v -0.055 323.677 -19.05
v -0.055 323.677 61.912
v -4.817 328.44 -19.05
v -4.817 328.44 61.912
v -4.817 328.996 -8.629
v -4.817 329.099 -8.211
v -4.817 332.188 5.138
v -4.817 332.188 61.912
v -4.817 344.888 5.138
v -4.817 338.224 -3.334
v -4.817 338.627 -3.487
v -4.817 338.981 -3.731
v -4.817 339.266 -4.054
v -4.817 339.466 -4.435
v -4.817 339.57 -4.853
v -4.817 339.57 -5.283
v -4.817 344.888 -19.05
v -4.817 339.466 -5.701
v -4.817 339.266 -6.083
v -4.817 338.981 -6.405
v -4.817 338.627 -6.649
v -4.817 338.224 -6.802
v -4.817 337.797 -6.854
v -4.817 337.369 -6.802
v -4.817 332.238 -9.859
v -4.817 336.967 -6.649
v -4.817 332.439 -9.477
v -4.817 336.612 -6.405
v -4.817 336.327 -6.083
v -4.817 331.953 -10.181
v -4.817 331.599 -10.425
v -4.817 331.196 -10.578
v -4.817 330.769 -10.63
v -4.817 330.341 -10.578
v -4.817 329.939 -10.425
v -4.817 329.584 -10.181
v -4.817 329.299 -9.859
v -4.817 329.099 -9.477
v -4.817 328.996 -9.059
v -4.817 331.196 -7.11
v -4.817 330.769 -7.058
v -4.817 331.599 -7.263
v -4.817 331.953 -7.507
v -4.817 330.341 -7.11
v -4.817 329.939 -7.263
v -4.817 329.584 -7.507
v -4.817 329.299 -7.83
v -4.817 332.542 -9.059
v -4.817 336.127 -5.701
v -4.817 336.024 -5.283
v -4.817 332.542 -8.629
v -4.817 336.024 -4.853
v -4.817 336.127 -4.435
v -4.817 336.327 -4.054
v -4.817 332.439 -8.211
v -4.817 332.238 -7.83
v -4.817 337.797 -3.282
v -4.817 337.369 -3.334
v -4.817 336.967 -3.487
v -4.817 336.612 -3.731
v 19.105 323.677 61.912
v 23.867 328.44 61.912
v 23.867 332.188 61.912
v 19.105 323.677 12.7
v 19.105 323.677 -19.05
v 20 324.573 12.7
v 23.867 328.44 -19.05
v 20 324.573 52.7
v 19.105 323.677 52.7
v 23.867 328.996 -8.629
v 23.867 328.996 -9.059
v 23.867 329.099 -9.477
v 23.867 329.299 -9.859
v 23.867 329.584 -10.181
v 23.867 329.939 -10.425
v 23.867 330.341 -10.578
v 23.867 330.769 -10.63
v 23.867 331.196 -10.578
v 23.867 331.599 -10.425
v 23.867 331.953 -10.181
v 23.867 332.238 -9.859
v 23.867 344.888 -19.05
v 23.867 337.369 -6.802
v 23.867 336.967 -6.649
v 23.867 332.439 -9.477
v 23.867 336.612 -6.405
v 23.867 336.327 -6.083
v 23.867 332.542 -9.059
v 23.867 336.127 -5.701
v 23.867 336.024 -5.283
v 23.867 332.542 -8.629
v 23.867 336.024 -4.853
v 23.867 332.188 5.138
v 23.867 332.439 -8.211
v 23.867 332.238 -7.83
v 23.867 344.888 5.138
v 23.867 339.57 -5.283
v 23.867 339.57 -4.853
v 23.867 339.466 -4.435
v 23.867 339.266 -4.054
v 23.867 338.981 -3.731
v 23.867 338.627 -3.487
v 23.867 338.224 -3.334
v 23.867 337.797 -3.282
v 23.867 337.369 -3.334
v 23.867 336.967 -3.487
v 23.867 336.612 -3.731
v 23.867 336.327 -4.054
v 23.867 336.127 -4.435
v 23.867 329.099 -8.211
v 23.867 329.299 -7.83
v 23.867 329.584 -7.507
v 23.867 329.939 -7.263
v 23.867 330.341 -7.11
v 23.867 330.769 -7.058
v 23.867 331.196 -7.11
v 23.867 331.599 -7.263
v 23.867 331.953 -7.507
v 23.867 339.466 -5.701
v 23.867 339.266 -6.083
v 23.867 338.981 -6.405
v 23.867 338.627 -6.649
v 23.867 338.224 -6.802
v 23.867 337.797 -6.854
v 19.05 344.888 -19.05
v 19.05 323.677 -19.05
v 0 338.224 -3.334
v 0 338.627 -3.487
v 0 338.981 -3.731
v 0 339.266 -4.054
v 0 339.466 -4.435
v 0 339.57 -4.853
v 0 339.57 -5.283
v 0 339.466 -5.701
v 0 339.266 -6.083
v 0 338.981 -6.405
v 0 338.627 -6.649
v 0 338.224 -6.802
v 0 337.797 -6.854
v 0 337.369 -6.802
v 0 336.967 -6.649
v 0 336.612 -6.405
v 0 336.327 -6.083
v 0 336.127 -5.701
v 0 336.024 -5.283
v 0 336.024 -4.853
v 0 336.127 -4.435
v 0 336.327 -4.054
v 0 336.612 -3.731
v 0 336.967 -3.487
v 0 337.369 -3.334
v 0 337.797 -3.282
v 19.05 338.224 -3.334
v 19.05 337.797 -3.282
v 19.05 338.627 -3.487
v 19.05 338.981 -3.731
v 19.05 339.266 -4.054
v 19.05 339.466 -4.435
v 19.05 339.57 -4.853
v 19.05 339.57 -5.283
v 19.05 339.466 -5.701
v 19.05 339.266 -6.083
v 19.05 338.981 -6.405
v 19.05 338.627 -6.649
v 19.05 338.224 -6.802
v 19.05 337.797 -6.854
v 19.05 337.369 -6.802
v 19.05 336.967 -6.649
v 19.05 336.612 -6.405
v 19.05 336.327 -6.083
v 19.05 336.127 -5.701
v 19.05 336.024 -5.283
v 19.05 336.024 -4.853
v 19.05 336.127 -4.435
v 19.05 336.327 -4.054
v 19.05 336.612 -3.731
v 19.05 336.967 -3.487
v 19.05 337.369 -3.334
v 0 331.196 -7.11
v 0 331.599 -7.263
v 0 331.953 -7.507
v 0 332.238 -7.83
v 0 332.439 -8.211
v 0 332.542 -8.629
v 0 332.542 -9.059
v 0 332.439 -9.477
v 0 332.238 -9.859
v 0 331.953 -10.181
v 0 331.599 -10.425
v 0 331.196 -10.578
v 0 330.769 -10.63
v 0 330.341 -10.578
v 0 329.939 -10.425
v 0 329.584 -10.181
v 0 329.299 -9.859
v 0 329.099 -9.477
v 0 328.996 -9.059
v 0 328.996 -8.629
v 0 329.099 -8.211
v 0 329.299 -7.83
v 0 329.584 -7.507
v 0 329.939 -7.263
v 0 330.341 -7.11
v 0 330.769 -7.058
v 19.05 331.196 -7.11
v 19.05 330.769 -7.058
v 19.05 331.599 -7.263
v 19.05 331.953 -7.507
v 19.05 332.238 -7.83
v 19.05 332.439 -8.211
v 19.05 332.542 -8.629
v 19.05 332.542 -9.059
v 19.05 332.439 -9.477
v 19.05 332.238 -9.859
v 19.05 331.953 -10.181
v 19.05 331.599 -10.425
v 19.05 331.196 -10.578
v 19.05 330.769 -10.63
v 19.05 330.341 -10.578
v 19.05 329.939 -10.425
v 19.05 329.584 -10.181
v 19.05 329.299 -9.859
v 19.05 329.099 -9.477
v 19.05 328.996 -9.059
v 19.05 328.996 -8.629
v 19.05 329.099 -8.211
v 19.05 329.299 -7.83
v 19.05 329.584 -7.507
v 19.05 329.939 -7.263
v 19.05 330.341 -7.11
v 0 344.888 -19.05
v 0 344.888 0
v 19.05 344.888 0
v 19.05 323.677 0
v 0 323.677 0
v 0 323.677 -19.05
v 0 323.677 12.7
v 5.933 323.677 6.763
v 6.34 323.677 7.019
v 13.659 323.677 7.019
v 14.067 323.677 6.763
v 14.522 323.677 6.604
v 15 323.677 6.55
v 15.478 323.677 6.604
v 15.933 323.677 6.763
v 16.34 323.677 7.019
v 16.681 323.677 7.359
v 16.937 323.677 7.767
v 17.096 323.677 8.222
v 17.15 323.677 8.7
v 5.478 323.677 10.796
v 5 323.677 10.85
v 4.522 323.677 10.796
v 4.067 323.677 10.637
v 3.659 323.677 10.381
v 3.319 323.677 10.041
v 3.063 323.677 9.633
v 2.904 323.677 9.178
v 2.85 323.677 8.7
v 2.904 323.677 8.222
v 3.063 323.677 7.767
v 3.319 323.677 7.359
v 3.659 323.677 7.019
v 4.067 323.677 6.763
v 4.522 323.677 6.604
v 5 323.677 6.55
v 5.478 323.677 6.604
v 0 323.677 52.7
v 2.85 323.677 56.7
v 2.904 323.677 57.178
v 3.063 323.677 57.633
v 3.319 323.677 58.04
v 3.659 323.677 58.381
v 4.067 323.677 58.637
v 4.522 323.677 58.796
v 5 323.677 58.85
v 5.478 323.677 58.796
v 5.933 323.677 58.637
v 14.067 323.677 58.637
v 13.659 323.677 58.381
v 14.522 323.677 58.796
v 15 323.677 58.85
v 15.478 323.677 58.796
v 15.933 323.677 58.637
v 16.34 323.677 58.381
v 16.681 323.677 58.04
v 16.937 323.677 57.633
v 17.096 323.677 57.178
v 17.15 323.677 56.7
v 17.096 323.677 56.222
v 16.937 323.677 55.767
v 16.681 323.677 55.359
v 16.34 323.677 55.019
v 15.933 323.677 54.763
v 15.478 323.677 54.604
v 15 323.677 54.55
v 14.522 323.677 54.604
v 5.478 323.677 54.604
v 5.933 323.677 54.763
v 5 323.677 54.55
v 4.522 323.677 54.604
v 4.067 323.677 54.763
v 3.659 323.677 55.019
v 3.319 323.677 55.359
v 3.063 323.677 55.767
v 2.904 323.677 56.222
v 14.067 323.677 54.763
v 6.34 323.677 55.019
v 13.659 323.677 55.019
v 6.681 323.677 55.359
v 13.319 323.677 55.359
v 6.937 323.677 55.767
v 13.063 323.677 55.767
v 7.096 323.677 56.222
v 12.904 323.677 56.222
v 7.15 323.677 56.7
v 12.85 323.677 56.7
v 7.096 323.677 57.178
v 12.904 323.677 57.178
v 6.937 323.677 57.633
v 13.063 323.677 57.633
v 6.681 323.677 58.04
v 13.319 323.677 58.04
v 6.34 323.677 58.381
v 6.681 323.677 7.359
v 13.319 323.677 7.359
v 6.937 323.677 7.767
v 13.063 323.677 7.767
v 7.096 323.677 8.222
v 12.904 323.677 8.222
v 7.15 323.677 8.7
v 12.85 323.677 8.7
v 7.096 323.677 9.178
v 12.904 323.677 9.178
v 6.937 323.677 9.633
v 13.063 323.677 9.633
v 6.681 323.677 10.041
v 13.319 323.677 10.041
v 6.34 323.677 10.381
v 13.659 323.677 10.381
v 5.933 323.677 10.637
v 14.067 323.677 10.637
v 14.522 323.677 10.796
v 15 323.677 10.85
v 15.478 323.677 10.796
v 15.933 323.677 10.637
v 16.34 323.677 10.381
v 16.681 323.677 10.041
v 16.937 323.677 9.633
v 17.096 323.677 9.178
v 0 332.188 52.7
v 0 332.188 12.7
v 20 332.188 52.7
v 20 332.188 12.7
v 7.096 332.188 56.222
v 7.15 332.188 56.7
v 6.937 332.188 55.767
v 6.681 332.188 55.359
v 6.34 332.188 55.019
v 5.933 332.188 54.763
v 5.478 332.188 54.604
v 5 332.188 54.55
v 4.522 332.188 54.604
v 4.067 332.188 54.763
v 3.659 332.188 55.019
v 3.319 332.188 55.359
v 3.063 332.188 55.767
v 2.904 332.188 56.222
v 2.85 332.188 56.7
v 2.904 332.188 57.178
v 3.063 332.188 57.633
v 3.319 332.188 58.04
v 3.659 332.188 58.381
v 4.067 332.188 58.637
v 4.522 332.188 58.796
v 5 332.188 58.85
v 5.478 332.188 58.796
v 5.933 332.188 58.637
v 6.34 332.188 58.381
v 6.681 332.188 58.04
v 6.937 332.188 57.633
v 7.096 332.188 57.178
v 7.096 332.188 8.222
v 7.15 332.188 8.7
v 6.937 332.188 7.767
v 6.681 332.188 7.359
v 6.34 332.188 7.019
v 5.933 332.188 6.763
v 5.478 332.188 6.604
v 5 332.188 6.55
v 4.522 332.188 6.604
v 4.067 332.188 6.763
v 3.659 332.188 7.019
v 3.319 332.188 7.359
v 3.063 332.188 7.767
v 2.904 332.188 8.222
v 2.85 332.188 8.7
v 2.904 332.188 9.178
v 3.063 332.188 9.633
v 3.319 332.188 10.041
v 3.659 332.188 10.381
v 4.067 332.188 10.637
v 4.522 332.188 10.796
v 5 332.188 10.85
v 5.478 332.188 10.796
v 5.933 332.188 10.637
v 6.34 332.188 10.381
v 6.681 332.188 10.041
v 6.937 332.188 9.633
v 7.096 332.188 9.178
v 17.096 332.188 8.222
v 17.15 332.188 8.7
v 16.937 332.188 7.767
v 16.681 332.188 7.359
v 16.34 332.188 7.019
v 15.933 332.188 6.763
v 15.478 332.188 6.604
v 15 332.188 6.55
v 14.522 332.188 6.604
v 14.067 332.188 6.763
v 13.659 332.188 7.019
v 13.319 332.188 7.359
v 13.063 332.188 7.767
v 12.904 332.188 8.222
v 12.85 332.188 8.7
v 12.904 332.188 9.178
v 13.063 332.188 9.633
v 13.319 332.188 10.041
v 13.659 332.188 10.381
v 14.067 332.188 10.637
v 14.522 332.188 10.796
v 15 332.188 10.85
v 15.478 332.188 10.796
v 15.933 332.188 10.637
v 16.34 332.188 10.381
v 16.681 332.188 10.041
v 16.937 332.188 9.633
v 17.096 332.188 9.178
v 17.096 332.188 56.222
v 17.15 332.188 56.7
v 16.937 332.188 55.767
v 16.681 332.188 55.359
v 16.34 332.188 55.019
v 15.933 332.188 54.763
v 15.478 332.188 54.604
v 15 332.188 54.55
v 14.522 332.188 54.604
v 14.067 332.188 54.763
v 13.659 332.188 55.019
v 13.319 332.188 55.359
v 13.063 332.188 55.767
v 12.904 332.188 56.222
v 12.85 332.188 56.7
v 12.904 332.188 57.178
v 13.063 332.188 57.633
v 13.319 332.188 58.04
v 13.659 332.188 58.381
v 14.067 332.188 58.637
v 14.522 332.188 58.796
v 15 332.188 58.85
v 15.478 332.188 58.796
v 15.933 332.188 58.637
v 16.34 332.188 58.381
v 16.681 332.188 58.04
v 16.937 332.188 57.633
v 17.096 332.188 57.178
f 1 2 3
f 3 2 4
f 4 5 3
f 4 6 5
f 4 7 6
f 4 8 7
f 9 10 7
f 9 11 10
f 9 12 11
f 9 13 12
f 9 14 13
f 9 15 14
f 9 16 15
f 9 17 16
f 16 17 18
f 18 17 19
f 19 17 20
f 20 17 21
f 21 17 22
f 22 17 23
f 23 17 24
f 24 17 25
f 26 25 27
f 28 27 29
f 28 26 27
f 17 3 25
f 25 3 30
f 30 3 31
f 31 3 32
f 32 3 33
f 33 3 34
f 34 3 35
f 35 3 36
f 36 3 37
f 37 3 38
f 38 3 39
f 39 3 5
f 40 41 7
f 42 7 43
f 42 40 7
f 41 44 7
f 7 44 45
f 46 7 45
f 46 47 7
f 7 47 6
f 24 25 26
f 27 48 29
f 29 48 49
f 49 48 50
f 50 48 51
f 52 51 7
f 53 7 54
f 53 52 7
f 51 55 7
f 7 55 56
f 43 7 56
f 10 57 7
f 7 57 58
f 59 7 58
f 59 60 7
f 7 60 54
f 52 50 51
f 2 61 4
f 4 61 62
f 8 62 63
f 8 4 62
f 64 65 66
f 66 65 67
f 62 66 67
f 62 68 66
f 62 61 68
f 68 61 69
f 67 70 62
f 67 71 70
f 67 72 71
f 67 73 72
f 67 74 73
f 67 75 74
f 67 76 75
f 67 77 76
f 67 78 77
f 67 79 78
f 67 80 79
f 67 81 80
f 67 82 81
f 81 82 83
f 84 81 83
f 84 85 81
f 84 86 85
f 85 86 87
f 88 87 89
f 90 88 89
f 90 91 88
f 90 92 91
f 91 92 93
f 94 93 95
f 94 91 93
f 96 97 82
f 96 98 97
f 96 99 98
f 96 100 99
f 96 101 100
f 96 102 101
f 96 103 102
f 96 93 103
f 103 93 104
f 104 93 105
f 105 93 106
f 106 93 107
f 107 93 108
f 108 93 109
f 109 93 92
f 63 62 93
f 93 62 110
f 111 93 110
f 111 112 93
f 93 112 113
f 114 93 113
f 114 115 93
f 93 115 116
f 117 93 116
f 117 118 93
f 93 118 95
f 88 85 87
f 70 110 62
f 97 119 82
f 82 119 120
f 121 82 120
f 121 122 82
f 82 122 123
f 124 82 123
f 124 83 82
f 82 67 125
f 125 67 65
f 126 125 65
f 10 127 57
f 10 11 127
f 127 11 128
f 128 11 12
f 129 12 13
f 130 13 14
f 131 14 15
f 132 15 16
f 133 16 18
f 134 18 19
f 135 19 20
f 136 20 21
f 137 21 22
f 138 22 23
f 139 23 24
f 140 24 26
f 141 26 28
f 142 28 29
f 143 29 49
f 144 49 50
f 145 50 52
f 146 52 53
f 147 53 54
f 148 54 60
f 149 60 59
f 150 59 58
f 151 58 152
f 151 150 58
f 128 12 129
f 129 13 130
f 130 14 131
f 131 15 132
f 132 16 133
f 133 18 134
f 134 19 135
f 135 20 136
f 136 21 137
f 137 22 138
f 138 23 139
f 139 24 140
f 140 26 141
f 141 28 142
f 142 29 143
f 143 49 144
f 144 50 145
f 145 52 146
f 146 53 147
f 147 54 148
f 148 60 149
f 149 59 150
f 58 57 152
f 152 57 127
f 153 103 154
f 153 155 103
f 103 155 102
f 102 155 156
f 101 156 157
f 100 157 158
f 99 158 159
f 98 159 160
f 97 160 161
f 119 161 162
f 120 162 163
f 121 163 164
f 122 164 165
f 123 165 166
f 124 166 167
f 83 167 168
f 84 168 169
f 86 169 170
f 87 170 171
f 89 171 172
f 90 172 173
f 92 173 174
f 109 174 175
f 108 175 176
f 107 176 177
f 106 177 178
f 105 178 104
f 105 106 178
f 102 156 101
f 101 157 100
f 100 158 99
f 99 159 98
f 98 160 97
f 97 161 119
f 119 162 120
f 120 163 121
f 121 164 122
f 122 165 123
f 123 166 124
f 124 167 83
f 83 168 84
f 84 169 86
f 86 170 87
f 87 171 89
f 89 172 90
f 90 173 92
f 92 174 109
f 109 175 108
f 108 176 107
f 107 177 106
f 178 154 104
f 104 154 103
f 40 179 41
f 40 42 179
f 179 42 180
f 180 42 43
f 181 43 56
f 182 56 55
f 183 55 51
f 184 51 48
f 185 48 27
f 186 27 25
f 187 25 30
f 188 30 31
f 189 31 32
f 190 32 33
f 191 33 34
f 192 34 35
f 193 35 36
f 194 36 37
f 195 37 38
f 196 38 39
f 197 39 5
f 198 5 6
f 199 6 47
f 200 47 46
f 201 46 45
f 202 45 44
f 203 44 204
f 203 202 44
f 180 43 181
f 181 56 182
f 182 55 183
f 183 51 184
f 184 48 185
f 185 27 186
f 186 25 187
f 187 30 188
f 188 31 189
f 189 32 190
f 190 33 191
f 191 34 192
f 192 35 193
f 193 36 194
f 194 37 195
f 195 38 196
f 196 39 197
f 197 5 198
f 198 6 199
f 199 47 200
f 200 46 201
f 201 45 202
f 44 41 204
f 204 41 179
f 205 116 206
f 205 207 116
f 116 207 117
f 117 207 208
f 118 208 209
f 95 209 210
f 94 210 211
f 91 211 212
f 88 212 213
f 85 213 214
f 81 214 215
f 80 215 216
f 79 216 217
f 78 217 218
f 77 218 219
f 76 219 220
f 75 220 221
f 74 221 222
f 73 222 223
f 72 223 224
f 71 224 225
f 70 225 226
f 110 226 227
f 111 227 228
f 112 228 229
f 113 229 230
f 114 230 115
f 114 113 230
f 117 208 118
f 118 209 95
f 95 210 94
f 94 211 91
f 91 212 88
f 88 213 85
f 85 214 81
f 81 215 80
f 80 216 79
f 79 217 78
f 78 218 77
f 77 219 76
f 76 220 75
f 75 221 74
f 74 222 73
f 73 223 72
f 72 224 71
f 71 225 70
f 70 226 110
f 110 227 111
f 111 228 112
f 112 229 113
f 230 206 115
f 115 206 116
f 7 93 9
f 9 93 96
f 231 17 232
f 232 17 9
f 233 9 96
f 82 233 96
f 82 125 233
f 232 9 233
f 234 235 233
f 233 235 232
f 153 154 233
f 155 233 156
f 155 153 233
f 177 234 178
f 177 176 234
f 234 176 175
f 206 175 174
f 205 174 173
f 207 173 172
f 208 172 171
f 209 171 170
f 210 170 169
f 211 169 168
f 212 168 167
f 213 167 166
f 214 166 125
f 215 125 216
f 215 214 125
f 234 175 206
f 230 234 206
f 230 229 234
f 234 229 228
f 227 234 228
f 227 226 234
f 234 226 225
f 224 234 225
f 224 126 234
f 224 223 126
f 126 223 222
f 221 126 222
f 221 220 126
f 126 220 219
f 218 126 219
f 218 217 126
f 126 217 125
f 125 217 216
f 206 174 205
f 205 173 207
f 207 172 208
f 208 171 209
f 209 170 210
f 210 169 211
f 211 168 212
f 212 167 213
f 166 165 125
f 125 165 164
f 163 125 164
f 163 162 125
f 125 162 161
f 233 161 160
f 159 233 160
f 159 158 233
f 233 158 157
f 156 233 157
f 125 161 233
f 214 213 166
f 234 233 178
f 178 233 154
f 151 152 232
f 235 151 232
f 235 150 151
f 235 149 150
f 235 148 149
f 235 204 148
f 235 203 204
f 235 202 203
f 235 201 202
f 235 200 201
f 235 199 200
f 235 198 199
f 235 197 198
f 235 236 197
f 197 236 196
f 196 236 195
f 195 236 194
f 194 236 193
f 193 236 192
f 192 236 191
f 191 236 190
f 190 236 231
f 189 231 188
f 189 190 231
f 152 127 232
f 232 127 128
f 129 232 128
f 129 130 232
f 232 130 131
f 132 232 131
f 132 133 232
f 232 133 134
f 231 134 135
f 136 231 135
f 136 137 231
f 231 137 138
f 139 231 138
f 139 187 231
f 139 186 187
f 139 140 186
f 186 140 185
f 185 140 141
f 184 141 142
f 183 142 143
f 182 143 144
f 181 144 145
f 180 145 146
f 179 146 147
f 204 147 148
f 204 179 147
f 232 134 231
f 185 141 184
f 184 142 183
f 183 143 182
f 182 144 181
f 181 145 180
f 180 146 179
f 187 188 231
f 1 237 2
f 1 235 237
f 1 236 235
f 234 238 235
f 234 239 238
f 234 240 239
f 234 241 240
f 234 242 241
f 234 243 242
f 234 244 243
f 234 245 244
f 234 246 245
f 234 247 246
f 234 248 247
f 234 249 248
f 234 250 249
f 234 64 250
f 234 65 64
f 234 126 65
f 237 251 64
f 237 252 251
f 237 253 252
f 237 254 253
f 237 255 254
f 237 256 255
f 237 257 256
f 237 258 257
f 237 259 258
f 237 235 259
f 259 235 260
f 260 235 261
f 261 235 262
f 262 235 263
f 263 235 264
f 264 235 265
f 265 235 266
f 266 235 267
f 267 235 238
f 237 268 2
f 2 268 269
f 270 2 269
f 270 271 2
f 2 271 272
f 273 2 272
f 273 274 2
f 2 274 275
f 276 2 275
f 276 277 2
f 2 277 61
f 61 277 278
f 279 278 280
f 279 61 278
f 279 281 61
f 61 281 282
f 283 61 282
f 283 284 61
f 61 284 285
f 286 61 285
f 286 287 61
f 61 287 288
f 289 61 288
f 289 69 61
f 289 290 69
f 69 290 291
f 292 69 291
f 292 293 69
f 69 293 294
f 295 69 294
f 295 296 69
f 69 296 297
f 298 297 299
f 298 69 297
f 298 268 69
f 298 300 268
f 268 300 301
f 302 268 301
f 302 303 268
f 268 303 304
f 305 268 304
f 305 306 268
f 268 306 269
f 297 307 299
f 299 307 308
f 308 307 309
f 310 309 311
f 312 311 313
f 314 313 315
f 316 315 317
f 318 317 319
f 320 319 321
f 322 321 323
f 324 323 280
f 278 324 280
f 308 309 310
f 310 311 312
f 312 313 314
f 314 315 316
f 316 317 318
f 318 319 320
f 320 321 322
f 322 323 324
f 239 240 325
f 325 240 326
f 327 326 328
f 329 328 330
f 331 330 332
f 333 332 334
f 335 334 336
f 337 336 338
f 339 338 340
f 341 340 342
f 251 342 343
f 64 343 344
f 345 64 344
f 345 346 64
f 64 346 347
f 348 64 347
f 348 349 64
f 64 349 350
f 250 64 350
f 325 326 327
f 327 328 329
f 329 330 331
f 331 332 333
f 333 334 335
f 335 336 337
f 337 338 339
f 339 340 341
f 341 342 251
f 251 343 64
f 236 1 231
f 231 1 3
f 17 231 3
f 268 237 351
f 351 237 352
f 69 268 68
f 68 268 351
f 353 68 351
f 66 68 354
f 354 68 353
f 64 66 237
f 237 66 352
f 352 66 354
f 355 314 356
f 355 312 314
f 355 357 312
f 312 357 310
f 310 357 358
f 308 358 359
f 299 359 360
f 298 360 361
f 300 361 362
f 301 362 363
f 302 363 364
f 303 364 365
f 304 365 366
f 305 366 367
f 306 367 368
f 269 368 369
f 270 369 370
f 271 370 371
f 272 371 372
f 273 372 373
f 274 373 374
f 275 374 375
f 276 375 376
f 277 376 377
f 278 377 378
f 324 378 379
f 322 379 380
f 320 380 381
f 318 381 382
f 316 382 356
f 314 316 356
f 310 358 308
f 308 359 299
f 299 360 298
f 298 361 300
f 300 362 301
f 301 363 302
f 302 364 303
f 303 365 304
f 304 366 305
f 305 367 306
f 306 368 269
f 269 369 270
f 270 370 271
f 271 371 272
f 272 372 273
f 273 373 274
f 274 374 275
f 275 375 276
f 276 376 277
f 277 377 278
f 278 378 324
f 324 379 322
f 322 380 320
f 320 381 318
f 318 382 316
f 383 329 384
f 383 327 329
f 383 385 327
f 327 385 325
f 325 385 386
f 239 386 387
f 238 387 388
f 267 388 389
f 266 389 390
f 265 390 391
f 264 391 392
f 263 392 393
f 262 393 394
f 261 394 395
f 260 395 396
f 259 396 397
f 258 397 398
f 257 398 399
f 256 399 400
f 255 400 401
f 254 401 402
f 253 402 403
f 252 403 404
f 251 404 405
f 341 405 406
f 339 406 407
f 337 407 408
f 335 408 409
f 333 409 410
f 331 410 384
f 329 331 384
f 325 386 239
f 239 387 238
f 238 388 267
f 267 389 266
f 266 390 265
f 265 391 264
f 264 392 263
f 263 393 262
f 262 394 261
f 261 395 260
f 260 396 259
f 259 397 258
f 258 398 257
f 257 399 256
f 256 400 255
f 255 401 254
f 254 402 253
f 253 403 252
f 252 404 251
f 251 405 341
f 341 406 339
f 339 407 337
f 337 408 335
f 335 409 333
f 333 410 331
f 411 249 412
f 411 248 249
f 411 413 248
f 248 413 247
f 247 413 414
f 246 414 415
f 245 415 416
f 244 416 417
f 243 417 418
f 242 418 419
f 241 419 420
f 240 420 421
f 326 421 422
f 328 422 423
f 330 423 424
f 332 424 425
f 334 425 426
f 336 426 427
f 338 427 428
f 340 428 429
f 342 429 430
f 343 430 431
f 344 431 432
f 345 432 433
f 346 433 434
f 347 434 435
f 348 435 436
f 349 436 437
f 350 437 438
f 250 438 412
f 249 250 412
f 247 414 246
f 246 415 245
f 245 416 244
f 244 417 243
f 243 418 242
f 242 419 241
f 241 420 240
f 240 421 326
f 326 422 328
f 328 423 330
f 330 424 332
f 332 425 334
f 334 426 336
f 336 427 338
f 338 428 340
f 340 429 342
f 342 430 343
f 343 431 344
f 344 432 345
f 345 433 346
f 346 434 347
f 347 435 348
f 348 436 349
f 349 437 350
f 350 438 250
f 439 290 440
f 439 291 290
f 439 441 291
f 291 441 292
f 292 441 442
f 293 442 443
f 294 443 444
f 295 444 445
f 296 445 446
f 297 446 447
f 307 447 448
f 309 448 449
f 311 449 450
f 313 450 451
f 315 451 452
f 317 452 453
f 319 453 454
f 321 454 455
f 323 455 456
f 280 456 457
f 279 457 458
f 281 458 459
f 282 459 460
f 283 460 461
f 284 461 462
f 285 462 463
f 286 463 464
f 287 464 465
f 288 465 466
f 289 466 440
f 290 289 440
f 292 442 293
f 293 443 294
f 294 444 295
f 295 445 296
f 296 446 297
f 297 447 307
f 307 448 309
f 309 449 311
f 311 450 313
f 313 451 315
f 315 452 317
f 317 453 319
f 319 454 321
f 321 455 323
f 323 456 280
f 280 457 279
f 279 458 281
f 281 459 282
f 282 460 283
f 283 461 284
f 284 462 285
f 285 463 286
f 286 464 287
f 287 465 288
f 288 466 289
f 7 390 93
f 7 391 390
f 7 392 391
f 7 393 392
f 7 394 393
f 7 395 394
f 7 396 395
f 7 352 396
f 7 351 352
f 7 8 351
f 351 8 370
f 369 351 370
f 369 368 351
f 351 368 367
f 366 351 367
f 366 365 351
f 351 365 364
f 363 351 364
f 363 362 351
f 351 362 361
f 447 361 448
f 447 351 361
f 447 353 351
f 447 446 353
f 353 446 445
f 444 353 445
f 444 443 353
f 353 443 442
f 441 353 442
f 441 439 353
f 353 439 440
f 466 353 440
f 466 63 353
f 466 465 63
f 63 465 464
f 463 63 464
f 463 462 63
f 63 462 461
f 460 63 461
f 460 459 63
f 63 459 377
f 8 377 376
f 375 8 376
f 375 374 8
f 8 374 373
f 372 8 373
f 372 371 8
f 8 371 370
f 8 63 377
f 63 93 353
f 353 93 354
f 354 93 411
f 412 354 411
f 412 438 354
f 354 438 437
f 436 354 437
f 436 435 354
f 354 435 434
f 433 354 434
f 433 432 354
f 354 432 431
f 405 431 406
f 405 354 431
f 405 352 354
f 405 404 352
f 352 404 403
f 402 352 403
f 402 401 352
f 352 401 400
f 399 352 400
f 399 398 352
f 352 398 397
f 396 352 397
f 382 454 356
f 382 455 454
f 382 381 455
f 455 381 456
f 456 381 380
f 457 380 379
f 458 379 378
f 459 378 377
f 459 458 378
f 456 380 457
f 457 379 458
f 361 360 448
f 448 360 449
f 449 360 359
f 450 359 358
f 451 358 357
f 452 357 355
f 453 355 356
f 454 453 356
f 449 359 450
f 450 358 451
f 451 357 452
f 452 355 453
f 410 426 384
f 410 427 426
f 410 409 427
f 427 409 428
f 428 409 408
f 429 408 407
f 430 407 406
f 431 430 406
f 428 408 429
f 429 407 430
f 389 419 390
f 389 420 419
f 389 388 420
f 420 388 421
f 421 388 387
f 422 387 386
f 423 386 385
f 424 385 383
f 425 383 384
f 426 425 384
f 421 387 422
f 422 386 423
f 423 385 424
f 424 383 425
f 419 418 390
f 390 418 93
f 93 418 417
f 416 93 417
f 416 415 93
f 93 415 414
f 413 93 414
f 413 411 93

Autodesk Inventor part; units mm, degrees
ref_plane "YZ Plane" through (0, 0, 0) normal (1, 0, 0) x (0, 1, 0)
ref_plane "Work Plane1" through (0, 0, 0) normal (0, 0, 1) x (1, 0, 0)
ref_plane "Work Plane2" through (0, 0, 0) normal (0, 0, 1) x (1, 0, 0)
sketch "Sketch2" plane through (0, 0, 0) normal (0, 0, 1) x (1, 0, 0)
  line L0 (0, 0) -> (19.05, 0) projected
  line L1 (19.05, 0) -> (19.05, 431.8) construction
  line L2 (0, 431.8) -> (19.05, 431.8) projected
  line L3 (0, 0) -> (0, 431.8) construction
  line L4 (18.5, 323.6774) -> (1.5, 323.6774) projected
  line L5 (18.5, 323.6774) -> (19.1476, 323.6774)
  line L6 (1.5, 323.6774) -> (0, 323.6774)
  line L7 (-4.8174, 323.6774) -> (23.8674, 323.6774)
  line L8 (23.8674, 323.6774) -> (23.8674, 332.1879)
  line L9 (23.8674, 332.1879) -> (-4.8174, 332.1879)
  line L10 (-4.8174, 332.1879) -> (-4.8174, 323.6774)
  line L11 (9.525, 431.8) -> (9.525, 312.4258) construction
  line L12 (9.525, 327.9326) -> (-4.8174, 327.9326) construction
  line L13 (23.8674, 327.9326) -> (9.525, 327.9326) construction
extrude "Extrusion1" add sketch "Sketch2" along normal blind 61.9125
sketch "Sketch3" plane through (-4.8174, 323.6774, 0) normal (0, -1, 0) x (1, 0, 0)
  arc A0 (8.4674, 58.3733) -> (11.1674, 58.3733) centre (9.8174, 56.7) ccw projected
  arc A1 (18.4674, 58.3733) -> (21.1674, 58.3733) centre (19.8174, 56.7) ccw projected
  arc A2 (11.1674, 7.0267) -> (8.4674, 7.0267) centre (9.8174, 8.7) ccw projected
  arc A3 (21.1674, 7.0267) -> (18.4674, 7.0267) centre (19.8174, 8.7) ccw projected
  circle A4 centre (9.8174, 8.7) radius 2.15
  circle A5 centre (19.8174, 8.7) radius 2.15
  circle A6 centre (9.8174, 56.7) radius 2.15
  circle A7 centre (19.8174, 56.7) radius 2.15
  point P0 (4.8174, 0)
extrude "Extrusion2" cut sketch "Sketch3" against normal through all
sketch "Sketch4" plane through (-4.8174, 332.1879, 0) normal (0, 1, 0) x (1, 0, 0)
  line L0 (4.8174, -14.2) -> (4.8174, -51.2) projected
  line L1 (6.3174, -52.7) -> (23.3174, -52.7) projected
  line L2 (24.8174, -51.2) -> (24.8174, -14.2) projected
  line L3 (23.3174, -12.7) -> (6.3174, -12.7) projected
  line L4 (4.8174, -52.7) -> (24.8174, -52.7)
  line L5 (24.8174, -52.7) -> (24.8174, -12.7)
  line L6 (24.8174, -12.7) -> (4.8174, -12.7)
  line L7 (4.8174, -12.7) -> (4.8174, -52.7)
  point P0 (4.8174, 0)
extrude "Extrusion3" cut sketch "Sketch4" against normal through all
sketch "Sketch6" plane through (0, 0, 0) normal (0, 0, -1) x (-1, 0, 0)
  line L0 (4.8174, 323.6774) -> (-23.8674, 323.6774) projected
  line L1 (4.8174, 332.1879) -> (4.8174, 323.6774) projected
  line L2 (-23.8674, 332.1879) -> (4.8174, 332.1879) projected
  line L3 (-23.8674, 323.6774) -> (-23.8674, 332.1879) projected
  point P0 (0, 0)
extrude "Extrusion4" add sketch "Sketch6" along normal blind 19.05
sketch "Sketch7" plane through (-4.8174, 332.1879, 61.9125) normal (0, 1, 0) x (1, 0, 0)
  line L0 (4.8174, 70.6755) -> (4.8174, 80.9625) projected
  line L1 (4.8174, 61.9125) -> (4.8174, 70.6755) projected
  line L2 (23.8674, 61.9125) -> (23.8674, 70.6755) projected
  line L3 (23.8674, 71.4375) -> (23.8674, 80.9625) projected
  line L4 (23.8674, 61.9125) -> (4.8174, 61.9125)
  line L5 (4.8174, 61.9125) -> (4.8174, 80.9625)
  line L6 (4.8174, 80.9625) -> (23.8674, 80.9625)
  line L7 (23.8674, 80.9625) -> (23.8674, 61.9125)
extrude "Extrusion5" cut sketch "Sketch7" against normal through all
sketch "Sketch8" plane through (-4.8174, 332.1879, 61.9125) normal (0, 1, 0) x (1, 0, 0)
  line L0 (28.6847, 80.9625) -> (28.6847, 0) projected
  line L1 (0, 80.9625) -> (0, 0) projected
  line L2 (4.8174, 61.9125) -> (4.8174, 80.9625) projected
  line L3 (0, 80.9625) -> (4.8174, 80.9625) projected
  line L4 (0, 80.9625) -> (0, 0) projected
  line L5 (28.6847, 0) -> (0, 0) projected
  line L6 (28.6847, 80.9625) -> (28.6847, 0) projected
  line L7 (23.8674, 80.9625) -> (28.6847, 80.9625) projected
  line L8 (23.8674, 80.9625) -> (23.8674, 61.9125) projected
  line L9 (23.8674, 61.9125) -> (4.8174, 61.9125) projected
  line L10 (24.8174, 49.2125) -> (24.8174, 9.2125) projected
  line L11 (24.8174, 9.2125) -> (4.8174, 9.2125) projected
  line L12 (4.8174, 9.2125) -> (4.8174, 49.2125) projected
  line L13 (4.8174, 49.2125) -> (24.8174, 49.2125) projected
  circle A0 centre (9.8174, 5.2125) radius 2.15 projected
  circle A1 centre (9.8174, 53.2125) radius 2.15 projected
  circle A2 centre (19.8174, 53.2125) radius 2.15 projected
  circle A3 centre (19.8174, 5.2125) radius 2.15 projected
  line L14 (28.6847, 56.7746) -> (0, 56.7746)
  line L15 (28.6847, 56.7746) -> (57.3695, 56.7746) construction
  point P0 (4.8174, 61.9125)
  dimension "d10" = 180
extrude "Extrusion6" add sketch "Sketch8" along normal blind 12.7 contours L0 L14 L1 L3 L2 L9 L8 L7
sketch "Sketch10" plane through (23.8674, 323.6774, 61.9125) normal (1, 0, 0) x (0, 0, -1)
  point P0 (61.9125, -323.6774)
sketch "Sketch11" plane through (-4.8174, 323.6774, 61.9125) normal (-1, 0, 0) x (0, 0, 1)
  line L0 (0, 0) -> (-80.9625, 0) projected
  line L1 (0, 8.5105) -> (0, 0) projected
  line L2 (-56.7746, 8.5105) -> (0, 8.5105) projected
  line L3 (-56.7746, 8.5105) -> (-56.7746, 21.2105) projected
  line L4 (-80.9625, 21.2105) -> (-56.7746, 21.2105) projected
  line L5 (-80.9625, 0) -> (-80.9625, 21.2105) projected
  circle A0 centre (-66.9806, 14.1192) radius 1.7859
  circle A1 centre (-70.7565, 7.0913) radius 1.7859
  line L6 (-66.9806, 14.1192) -> (-66.9806, 21.2105) construction
  line L7 (-70.7565, 7.0913) -> (-70.7565, 0) construction
  line L8 (-80.9625, 0) -> (0, 0) construction
  line L9 (-70.7565, 7.0913) -> (-80.9625, 7.0913) construction
  line L10 (-80.9625, 0) -> (-80.9625, 21.2105) construction
  line L11 (-66.9806, 14.1192) -> (-56.7746, 14.1192) construction
  point P0 (-61.9125, -323.6774)
  dimension "d13" = 3.5719
  dimension "d14" = 3.5719
extrude "Extrusion7" cut sketch "Sketch11" against normal through all contours A0 | A1
chamfer "Chamfer1" distance 4.7625 angle 45 2 edges at (23.8674, 323.6774, 21.4312) (-4.8174, 323.6774, 21.4312)
properties part number "servo mount"
